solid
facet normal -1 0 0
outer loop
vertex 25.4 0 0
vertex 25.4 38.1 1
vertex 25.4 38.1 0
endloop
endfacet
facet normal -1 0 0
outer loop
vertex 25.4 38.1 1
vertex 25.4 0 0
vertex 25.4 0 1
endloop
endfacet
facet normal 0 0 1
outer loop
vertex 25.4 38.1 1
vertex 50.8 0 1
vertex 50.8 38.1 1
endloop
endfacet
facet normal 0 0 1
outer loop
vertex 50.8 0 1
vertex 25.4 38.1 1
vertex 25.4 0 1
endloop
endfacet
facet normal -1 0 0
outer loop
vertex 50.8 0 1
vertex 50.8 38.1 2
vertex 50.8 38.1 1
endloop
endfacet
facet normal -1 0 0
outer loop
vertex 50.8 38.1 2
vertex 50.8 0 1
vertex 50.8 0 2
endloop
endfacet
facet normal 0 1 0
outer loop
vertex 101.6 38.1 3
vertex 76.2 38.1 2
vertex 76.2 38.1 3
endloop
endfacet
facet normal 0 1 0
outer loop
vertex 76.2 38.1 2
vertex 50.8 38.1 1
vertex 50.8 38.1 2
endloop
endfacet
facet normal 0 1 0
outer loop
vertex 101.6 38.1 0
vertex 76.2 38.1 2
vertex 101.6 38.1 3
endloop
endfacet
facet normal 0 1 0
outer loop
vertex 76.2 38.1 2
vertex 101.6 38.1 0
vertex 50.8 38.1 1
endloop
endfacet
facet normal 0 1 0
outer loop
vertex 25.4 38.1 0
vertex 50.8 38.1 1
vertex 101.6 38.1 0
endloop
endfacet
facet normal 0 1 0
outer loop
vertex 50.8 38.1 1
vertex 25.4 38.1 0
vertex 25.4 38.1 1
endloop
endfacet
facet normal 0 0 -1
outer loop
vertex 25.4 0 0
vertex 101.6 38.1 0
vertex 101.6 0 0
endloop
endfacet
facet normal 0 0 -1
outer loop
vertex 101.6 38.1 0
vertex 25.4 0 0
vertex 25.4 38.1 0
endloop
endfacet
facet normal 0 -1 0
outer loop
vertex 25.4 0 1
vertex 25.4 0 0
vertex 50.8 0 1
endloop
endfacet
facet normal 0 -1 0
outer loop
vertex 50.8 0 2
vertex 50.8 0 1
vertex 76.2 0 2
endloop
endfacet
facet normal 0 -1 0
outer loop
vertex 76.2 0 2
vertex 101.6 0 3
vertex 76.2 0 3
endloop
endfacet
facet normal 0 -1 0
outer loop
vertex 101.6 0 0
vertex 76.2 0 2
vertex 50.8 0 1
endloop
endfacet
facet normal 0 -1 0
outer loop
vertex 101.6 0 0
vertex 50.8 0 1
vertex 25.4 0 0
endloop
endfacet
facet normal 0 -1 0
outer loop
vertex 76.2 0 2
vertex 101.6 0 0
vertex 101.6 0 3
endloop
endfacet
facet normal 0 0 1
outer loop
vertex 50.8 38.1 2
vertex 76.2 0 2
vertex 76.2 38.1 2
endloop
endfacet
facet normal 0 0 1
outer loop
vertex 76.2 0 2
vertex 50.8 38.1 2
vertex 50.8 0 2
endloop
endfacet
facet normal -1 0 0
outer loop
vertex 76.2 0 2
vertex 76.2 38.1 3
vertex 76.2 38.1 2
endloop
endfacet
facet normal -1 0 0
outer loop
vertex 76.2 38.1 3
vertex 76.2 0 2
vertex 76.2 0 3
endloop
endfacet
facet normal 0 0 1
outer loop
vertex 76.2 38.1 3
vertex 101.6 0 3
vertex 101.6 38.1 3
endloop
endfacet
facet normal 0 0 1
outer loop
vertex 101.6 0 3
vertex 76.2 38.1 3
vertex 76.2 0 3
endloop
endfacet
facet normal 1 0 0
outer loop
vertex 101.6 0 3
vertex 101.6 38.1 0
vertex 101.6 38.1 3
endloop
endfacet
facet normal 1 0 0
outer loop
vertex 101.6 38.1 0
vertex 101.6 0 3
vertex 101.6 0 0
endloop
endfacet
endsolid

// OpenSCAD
width = 25.4 * 1.5;
sectionLength = 25.4 * 1;
step = 1;
maxSize = 3;

for(i=[1:maxSize/step])
{
    translate([sectionLength*i,0,0])
        cube([sectionLength,width,i*step]);
}
